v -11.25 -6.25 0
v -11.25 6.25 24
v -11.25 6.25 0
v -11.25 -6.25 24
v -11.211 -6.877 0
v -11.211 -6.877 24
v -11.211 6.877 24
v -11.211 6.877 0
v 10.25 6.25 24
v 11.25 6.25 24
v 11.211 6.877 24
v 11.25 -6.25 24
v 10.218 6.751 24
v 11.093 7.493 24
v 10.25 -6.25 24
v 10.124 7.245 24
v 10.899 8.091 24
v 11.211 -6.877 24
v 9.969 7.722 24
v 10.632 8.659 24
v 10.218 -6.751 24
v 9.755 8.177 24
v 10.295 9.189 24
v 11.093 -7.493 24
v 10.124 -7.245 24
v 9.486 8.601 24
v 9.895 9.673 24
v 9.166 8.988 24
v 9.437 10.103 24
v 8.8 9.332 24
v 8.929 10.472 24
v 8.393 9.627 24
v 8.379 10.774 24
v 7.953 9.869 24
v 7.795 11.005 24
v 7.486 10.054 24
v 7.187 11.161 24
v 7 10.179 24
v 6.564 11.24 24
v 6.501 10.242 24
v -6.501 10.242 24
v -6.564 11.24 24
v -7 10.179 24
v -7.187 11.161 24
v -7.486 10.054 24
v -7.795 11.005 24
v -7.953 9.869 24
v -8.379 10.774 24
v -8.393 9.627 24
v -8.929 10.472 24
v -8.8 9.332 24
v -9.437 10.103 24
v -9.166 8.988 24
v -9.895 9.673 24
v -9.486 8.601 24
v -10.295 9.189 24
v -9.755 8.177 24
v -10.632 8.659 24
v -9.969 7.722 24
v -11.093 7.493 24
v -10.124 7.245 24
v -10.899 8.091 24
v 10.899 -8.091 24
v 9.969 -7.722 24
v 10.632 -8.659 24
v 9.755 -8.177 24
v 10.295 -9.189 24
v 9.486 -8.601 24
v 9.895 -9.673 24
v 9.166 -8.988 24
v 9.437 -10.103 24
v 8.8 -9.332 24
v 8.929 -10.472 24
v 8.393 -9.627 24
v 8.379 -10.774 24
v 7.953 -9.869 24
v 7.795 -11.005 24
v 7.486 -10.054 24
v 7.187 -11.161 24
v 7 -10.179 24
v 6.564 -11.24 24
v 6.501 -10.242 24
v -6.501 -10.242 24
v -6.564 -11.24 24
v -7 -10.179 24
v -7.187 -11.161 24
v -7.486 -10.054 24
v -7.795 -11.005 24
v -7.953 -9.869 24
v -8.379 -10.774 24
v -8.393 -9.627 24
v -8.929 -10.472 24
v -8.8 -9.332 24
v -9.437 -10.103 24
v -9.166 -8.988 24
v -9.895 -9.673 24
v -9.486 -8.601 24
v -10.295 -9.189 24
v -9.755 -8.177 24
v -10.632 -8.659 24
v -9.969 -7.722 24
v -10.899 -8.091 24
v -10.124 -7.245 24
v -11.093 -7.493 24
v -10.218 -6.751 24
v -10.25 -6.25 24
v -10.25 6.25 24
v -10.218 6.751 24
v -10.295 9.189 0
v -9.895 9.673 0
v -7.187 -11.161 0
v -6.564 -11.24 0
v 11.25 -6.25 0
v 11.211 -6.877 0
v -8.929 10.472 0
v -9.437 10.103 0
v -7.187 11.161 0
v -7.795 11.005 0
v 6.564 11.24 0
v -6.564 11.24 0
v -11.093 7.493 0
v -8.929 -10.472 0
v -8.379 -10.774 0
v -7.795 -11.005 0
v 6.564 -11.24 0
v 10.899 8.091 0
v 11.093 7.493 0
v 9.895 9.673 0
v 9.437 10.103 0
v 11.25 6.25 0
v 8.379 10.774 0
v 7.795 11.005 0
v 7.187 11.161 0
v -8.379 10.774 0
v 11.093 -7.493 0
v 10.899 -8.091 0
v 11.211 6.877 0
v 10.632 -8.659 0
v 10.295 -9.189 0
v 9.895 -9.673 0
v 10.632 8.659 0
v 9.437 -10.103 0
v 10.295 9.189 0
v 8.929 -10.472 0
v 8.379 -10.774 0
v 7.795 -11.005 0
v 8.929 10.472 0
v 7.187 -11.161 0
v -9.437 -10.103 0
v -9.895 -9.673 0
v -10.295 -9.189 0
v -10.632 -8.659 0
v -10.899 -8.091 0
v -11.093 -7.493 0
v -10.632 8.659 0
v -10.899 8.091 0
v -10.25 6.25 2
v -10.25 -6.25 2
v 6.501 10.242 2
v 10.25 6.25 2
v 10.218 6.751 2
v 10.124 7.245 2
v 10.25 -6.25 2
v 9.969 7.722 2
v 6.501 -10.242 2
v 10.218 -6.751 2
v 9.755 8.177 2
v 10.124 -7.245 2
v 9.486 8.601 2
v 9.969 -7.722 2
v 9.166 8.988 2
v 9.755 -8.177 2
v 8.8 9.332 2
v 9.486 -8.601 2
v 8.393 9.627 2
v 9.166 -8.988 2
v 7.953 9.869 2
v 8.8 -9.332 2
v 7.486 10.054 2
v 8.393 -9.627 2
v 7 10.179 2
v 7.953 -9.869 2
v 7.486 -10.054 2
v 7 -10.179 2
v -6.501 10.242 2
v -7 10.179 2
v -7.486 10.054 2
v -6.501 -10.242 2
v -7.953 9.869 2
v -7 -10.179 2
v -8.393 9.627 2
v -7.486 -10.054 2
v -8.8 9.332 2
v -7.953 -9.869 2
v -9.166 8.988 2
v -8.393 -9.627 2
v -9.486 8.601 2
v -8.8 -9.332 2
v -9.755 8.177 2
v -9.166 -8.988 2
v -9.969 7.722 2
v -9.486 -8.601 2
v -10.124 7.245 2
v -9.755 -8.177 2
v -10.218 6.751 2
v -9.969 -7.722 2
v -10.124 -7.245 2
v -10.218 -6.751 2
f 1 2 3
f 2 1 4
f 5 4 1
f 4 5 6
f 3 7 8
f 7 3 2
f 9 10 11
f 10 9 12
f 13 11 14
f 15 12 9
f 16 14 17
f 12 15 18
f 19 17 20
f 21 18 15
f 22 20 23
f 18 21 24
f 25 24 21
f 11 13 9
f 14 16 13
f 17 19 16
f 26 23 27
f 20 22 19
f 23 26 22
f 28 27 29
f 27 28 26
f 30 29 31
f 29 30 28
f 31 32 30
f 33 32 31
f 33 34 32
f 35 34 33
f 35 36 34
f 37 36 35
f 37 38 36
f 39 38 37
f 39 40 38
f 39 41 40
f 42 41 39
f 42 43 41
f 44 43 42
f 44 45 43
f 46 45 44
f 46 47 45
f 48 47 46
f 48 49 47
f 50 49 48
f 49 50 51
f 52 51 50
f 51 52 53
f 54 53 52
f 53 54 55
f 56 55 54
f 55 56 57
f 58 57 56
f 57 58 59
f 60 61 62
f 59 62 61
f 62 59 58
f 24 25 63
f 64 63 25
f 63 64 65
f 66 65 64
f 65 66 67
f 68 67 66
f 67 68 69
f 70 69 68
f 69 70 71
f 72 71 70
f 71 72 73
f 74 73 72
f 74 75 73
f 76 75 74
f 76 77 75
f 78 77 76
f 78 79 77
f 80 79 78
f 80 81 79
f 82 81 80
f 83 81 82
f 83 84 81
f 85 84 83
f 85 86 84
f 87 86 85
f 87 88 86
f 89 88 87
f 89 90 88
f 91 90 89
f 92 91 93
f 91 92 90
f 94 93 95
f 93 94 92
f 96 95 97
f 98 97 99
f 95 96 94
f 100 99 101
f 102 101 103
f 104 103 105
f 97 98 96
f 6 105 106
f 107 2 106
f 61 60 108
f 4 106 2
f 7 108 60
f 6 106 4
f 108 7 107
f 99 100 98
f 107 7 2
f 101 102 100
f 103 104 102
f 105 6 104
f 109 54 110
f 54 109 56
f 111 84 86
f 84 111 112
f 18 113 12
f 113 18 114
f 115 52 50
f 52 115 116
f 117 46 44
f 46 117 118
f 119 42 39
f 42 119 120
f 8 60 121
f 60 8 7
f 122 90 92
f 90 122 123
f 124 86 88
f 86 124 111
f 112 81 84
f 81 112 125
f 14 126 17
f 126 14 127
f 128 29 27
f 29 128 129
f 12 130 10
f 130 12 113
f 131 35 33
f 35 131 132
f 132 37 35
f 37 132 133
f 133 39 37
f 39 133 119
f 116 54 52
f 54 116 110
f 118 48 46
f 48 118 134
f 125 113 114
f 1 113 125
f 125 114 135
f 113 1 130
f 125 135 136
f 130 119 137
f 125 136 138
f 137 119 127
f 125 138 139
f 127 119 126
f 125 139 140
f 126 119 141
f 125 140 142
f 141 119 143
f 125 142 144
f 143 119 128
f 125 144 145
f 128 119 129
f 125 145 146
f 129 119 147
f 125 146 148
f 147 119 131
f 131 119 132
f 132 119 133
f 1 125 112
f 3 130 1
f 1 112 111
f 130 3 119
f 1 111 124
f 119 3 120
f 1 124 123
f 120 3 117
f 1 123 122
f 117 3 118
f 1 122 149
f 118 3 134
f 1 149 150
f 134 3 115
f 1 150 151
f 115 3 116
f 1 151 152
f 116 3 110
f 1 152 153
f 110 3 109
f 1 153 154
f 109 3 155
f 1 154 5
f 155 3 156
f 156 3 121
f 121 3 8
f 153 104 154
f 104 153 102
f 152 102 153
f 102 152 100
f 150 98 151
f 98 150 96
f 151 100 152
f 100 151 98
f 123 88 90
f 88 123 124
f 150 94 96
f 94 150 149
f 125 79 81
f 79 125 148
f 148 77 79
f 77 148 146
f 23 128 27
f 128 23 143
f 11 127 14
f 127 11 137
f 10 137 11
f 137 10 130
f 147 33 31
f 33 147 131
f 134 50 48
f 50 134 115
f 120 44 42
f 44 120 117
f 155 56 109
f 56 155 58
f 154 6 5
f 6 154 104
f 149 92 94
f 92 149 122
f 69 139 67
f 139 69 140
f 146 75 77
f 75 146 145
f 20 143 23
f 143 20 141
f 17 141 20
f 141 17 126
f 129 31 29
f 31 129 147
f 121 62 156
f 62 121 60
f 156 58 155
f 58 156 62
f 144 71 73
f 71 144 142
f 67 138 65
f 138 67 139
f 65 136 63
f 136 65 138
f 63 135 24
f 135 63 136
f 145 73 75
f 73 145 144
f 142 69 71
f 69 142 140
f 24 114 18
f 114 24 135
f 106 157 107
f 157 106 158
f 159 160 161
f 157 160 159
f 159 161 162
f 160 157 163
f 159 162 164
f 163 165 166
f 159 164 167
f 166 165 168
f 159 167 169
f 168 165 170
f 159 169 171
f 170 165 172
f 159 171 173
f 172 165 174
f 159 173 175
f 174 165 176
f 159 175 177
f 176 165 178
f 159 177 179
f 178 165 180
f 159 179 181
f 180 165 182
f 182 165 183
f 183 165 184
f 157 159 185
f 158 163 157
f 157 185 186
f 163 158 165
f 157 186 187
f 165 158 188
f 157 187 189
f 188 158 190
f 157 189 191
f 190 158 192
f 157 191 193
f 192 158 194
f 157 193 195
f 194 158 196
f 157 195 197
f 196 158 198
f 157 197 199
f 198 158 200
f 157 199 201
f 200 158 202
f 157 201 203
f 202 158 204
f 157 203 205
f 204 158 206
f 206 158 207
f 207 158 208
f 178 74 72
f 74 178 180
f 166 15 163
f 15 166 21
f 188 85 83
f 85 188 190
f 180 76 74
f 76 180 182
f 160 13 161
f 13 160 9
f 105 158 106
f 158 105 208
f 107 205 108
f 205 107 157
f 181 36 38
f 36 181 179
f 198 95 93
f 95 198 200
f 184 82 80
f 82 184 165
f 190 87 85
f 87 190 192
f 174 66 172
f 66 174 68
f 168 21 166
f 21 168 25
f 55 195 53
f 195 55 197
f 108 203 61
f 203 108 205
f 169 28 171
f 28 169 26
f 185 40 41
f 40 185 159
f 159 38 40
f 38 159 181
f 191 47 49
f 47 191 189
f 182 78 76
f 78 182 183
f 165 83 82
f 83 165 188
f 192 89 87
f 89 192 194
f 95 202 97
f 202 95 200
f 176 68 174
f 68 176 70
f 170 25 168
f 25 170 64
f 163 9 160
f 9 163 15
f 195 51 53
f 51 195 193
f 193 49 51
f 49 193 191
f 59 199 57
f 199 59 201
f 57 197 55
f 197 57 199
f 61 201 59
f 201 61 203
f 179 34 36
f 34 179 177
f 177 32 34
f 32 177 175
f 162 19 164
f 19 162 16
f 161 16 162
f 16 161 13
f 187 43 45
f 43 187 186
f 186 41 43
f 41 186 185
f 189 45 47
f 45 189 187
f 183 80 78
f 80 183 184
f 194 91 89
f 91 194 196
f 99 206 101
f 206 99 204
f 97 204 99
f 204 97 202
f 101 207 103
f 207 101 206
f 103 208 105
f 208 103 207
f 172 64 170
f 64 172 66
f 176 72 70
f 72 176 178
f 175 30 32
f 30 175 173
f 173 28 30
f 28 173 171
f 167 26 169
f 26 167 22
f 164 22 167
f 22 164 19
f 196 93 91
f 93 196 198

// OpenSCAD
$fn = 50;


difference() {
	union() {
		hull() {
			translate(v = [-6.2500000000, 6.2500000000, 0]) {
				cylinder(h = 24, r = 5);
			}
			translate(v = [6.2500000000, 6.2500000000, 0]) {
				cylinder(h = 24, r = 5);
			}
			translate(v = [-6.2500000000, -6.2500000000, 0]) {
				cylinder(h = 24, r = 5);
			}
			translate(v = [6.2500000000, -6.2500000000, 0]) {
				cylinder(h = 24, r = 5);
			}
		}
	}
	union() {
		translate(v = [0, 0, 2]) {
			hull() {
				translate(v = [-6.2500000000, 6.2500000000, 0]) {
					cylinder(h = 22, r = 4);
				}
				translate(v = [6.2500000000, 6.2500000000, 0]) {
					cylinder(h = 22, r = 4);
				}
				translate(v = [-6.2500000000, -6.2500000000, 0]) {
					cylinder(h = 22, r = 4);
				}
				translate(v = [6.2500000000, -6.2500000000, 0]) {
					cylinder(h = 22, r = 4);
				}
			}
		}
	}
}
